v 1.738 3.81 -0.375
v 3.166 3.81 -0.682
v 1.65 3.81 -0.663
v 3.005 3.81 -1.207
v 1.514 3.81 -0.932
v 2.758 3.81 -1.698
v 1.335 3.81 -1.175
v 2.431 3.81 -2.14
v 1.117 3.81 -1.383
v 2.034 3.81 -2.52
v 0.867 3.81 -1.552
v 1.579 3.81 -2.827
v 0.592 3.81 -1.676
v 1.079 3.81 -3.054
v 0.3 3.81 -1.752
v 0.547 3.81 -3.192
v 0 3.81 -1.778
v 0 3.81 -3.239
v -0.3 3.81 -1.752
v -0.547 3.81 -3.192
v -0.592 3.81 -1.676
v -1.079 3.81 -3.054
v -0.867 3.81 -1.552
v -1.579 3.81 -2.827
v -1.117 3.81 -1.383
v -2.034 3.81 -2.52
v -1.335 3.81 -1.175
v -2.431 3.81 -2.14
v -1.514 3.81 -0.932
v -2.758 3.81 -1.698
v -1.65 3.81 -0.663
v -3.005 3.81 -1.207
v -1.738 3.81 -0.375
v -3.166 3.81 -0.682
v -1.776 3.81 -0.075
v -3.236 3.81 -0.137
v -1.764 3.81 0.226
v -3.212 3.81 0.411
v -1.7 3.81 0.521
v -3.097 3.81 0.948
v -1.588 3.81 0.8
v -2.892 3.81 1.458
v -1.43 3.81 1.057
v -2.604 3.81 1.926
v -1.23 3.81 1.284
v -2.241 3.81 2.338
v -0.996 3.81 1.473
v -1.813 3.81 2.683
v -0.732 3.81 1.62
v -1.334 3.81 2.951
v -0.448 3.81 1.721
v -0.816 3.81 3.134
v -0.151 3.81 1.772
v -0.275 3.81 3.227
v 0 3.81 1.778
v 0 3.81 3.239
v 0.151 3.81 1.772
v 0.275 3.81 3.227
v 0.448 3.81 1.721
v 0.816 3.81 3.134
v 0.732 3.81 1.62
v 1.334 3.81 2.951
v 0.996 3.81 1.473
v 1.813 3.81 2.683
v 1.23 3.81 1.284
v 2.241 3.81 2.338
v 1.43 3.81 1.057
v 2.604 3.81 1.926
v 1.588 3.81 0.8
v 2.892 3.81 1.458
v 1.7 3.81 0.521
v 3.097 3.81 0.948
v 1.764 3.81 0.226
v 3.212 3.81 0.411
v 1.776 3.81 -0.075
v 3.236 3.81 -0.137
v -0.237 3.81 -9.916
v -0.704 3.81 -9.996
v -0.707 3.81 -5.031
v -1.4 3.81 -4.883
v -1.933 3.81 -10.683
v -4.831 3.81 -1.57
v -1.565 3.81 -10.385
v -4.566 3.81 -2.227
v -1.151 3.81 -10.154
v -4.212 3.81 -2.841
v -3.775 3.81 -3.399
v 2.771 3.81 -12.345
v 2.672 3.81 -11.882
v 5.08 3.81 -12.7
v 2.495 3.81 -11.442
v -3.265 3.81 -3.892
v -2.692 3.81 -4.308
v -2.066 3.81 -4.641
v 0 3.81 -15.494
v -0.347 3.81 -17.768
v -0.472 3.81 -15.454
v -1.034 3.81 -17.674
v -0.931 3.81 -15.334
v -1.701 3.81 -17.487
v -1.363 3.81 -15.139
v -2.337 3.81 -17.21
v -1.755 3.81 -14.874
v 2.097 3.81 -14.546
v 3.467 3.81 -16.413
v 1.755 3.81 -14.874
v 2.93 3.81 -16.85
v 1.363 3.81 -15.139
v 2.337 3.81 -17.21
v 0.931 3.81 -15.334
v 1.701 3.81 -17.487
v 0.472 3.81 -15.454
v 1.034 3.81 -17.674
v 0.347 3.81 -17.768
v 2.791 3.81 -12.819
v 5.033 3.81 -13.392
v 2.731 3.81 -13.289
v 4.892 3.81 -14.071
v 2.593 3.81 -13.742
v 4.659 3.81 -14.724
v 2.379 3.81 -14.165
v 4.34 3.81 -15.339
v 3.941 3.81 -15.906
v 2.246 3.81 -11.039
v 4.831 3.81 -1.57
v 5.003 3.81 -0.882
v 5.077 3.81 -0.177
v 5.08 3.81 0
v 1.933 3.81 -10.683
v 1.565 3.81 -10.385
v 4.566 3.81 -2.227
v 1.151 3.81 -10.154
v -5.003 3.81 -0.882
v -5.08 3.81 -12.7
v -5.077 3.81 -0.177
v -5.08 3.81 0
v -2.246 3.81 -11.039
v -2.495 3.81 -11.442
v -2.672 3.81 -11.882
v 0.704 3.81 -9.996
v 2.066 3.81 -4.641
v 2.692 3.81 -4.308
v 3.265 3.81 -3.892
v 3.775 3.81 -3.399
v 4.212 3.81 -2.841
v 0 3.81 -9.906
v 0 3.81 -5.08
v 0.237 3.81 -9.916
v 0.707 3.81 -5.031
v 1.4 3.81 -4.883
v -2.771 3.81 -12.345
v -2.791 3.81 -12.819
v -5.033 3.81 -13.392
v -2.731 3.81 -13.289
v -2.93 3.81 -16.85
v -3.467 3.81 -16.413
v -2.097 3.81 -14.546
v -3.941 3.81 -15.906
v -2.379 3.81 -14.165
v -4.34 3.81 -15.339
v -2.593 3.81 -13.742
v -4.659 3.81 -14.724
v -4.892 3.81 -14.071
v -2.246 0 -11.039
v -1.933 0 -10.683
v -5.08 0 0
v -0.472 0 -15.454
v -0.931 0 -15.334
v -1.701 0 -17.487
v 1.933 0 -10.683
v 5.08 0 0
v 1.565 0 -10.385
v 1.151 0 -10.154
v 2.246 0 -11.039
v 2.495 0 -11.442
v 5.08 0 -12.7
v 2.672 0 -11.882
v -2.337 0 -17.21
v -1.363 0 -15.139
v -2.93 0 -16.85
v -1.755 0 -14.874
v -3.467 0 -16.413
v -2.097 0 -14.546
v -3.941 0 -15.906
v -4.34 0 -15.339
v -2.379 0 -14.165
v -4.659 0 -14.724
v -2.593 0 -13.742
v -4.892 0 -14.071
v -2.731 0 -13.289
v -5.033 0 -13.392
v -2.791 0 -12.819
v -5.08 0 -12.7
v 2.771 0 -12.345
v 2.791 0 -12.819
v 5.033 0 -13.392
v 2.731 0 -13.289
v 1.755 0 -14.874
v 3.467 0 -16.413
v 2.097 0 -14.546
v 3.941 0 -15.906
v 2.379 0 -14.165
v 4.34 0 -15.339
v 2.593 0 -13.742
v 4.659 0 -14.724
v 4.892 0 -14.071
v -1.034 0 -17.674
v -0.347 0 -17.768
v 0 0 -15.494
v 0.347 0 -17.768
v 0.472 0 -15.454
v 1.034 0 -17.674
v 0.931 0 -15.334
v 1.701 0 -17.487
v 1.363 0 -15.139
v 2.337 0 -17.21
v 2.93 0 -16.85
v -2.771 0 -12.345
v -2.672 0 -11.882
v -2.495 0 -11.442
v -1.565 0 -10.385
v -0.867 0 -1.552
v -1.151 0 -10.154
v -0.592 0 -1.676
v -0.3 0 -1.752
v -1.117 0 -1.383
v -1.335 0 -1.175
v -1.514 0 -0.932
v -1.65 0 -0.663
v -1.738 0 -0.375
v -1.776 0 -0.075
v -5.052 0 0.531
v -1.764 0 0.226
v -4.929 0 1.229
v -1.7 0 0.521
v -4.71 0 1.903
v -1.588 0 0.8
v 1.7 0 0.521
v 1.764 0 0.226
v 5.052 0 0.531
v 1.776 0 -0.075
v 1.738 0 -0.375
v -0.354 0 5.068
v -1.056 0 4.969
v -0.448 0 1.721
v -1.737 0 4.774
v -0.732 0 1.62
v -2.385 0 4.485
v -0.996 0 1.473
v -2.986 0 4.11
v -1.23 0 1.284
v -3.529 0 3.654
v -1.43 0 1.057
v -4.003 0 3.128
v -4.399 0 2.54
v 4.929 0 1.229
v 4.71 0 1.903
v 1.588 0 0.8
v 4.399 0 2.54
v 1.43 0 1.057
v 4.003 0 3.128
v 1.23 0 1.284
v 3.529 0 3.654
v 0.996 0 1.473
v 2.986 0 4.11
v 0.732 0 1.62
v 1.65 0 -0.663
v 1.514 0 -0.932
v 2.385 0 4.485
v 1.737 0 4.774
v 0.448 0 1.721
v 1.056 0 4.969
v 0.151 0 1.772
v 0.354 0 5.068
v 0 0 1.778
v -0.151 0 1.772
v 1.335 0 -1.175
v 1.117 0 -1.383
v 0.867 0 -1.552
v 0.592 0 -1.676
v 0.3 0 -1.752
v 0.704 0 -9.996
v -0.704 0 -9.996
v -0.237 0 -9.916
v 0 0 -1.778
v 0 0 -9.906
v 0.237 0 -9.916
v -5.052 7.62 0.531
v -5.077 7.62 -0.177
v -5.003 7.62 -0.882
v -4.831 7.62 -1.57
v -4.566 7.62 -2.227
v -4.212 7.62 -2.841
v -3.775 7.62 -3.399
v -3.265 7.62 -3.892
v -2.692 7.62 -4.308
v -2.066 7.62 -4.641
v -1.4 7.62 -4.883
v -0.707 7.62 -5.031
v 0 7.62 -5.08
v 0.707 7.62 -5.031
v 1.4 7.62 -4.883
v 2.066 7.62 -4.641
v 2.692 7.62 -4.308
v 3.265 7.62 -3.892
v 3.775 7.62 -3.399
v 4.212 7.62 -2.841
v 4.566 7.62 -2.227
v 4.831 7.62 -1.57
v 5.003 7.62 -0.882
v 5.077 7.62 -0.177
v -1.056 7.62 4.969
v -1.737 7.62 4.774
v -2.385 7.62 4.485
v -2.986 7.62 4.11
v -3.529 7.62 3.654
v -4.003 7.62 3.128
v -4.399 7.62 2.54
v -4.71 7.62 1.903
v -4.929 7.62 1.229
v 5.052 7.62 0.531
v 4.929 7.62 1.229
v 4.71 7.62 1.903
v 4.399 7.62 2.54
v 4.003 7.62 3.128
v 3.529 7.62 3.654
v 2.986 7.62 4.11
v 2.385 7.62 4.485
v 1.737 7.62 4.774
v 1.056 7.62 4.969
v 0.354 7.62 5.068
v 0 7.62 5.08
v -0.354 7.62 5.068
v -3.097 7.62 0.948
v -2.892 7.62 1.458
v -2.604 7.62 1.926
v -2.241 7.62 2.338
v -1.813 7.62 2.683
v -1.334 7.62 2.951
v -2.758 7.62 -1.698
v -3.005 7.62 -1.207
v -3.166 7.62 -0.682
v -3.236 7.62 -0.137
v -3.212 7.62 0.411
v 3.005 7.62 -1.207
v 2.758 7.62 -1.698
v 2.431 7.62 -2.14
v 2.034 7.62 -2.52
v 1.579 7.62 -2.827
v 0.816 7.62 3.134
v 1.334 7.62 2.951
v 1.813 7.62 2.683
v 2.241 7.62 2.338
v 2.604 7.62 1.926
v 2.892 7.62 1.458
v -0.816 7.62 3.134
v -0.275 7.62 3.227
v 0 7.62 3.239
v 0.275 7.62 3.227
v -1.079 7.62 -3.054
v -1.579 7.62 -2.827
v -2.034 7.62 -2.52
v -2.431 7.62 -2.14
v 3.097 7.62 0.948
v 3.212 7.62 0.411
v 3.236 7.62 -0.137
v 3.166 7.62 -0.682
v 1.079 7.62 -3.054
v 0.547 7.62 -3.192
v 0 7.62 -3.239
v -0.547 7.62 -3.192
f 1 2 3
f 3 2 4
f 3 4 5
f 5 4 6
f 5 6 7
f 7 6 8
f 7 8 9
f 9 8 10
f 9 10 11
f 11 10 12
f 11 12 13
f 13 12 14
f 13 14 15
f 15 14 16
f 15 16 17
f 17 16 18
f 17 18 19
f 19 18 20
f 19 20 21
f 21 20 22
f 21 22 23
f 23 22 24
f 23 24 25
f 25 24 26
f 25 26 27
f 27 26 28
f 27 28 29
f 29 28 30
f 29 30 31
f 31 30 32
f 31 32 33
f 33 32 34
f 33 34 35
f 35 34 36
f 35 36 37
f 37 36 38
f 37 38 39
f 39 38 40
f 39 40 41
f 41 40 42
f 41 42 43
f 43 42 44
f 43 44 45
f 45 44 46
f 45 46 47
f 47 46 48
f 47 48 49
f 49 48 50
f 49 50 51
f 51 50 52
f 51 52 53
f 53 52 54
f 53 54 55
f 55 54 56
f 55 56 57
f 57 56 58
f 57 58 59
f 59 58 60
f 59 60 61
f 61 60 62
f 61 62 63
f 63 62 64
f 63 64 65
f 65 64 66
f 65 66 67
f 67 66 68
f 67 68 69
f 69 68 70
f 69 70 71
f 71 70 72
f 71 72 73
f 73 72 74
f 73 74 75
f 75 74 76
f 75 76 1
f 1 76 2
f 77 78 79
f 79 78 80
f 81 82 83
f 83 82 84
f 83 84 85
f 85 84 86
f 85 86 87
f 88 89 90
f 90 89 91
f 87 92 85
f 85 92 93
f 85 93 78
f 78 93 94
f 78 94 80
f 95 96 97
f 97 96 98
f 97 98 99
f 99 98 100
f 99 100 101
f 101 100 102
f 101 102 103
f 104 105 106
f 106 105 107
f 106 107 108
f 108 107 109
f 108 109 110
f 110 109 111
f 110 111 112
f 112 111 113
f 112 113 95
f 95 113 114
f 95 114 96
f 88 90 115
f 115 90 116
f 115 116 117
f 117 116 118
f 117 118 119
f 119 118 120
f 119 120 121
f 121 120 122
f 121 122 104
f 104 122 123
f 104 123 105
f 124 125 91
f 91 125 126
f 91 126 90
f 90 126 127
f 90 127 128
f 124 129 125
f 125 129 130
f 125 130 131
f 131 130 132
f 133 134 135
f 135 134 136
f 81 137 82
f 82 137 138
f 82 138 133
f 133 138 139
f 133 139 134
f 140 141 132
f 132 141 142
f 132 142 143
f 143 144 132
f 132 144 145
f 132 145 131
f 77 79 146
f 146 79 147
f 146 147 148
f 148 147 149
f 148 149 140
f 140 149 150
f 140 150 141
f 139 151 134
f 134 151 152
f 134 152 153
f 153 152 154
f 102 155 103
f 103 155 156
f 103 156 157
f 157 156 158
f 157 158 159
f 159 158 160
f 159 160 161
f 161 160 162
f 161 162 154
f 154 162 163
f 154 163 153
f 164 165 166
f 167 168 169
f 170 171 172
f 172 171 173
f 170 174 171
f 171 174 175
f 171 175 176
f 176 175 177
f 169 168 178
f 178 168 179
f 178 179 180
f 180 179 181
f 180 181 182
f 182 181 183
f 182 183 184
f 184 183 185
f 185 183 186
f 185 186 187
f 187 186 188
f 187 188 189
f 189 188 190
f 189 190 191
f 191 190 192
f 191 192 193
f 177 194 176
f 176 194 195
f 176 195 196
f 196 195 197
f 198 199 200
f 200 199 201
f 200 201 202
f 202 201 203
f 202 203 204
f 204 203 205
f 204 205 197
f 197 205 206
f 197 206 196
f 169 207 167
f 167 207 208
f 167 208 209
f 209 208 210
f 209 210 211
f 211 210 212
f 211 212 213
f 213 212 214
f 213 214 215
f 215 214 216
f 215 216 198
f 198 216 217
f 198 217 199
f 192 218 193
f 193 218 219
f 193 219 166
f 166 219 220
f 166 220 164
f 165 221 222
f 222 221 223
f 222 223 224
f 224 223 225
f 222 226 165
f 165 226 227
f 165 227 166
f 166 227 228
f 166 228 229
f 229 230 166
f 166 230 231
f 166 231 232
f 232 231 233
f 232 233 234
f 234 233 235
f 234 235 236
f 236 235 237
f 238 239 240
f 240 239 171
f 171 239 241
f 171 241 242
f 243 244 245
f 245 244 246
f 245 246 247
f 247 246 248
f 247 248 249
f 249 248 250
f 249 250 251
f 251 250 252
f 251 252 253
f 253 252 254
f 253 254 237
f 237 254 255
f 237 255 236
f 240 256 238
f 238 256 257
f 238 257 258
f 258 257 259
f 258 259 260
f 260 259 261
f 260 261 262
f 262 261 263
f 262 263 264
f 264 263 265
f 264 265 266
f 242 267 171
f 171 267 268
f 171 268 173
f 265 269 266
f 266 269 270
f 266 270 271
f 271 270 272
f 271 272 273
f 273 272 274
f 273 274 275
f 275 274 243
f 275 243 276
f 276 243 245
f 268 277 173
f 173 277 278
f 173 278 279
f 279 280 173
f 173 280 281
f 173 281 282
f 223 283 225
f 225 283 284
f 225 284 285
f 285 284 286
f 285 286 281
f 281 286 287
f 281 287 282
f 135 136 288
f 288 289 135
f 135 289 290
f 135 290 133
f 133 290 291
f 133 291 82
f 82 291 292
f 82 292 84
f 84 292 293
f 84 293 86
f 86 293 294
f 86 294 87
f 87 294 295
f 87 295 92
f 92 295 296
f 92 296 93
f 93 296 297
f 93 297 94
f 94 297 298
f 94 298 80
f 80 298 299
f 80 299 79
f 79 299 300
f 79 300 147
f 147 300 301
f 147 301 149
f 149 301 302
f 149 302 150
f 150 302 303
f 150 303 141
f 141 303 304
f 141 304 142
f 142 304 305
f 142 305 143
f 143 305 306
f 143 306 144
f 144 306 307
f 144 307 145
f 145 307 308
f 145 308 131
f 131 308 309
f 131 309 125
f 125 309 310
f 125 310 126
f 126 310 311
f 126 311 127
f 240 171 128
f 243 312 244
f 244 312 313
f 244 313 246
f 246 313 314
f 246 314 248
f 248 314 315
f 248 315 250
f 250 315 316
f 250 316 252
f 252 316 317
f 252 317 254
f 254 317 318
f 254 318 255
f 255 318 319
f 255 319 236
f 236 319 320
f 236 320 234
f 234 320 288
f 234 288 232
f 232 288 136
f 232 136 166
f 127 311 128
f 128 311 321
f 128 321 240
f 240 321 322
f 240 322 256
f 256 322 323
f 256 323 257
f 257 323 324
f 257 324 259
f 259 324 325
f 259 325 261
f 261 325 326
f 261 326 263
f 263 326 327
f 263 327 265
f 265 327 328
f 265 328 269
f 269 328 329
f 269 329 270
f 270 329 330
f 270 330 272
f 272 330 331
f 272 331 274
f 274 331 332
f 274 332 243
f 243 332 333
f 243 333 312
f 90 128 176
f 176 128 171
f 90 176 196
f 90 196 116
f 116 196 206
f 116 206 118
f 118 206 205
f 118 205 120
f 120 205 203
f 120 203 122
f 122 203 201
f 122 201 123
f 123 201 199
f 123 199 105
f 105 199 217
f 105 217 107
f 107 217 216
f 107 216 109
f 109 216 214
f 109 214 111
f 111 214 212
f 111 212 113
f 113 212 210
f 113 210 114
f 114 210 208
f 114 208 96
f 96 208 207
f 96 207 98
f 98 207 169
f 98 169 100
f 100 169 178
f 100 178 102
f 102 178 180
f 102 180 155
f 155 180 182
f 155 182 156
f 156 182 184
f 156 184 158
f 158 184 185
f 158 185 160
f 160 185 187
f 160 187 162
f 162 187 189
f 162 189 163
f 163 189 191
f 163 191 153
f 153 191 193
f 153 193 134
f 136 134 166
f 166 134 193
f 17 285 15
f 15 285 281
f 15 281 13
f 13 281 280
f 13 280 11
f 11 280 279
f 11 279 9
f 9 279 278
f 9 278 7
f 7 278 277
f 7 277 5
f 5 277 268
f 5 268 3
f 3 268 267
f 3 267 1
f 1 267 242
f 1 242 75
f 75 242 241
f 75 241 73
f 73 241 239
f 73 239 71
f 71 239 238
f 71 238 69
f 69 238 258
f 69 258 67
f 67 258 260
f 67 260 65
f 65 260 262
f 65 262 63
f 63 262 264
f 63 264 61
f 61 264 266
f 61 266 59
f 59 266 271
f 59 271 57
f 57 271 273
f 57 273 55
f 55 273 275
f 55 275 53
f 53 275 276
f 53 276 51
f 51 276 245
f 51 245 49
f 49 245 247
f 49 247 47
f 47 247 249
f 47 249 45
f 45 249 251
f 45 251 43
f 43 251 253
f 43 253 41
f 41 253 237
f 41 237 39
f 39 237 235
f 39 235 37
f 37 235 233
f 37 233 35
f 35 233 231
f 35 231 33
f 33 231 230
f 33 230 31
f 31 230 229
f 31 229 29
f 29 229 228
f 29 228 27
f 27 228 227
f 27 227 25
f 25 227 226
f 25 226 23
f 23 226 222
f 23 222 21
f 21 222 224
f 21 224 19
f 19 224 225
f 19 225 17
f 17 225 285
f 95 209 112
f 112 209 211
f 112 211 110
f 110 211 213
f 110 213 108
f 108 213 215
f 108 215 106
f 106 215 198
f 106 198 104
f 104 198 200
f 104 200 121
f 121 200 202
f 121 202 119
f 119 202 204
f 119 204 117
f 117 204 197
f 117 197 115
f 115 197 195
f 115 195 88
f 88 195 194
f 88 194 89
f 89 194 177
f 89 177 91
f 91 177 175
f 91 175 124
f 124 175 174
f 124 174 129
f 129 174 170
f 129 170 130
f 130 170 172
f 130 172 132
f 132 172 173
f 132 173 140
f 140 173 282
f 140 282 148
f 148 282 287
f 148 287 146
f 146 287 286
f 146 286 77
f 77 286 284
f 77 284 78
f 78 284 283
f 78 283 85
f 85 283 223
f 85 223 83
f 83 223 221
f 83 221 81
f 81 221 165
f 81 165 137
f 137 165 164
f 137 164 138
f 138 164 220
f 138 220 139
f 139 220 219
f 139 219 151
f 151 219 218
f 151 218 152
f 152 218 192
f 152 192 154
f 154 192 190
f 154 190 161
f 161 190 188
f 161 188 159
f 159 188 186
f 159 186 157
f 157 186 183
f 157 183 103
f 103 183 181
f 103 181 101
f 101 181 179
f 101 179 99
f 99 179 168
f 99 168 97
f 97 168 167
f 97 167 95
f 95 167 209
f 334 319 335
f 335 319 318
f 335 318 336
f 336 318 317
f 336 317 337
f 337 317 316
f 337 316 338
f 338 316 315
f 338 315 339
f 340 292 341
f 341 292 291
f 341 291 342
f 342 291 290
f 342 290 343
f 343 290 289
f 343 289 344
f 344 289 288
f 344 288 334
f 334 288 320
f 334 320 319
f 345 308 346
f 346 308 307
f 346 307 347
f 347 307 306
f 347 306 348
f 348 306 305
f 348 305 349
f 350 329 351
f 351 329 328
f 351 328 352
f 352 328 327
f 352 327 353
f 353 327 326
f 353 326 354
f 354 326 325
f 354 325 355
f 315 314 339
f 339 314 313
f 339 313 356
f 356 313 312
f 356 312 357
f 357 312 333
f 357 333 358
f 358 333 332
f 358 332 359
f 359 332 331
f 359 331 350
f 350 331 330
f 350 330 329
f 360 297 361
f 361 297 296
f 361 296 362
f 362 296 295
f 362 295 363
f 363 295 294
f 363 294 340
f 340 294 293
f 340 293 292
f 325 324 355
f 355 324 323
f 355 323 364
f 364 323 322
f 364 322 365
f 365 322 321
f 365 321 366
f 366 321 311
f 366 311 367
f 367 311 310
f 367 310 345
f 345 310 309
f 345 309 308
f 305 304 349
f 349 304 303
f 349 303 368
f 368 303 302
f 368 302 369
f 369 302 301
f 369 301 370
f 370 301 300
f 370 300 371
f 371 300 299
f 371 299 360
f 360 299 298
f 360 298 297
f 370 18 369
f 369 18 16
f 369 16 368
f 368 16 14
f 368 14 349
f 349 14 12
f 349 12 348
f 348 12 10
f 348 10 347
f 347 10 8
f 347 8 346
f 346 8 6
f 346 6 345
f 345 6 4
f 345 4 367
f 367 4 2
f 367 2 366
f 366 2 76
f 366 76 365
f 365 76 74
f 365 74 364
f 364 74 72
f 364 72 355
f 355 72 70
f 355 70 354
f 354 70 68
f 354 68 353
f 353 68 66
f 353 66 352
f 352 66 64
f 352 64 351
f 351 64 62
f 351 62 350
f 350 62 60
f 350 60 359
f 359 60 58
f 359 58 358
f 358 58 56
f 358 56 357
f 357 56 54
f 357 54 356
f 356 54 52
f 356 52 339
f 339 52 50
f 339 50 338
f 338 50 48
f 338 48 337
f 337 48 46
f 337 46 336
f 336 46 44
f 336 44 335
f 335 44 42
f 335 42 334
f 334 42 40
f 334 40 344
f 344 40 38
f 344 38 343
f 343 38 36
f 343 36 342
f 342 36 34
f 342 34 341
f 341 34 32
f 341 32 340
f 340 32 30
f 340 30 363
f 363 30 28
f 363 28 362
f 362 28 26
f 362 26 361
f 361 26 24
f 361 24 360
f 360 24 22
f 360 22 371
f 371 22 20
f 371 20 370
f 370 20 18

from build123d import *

# Parameters (mm, degrees)
SKETCH1_R           = 1.778
SKETCH1_R_2         = 2.794
BASE_DEPTH          = 3.81
SKETCH2_R           = 5.08
SKETCH2_R_2         = 3.2385
BOSS_EXTRUDE2_DEPTH = 3.81


with BuildPart() as part:
    # Sketch1 → base (new body)
    with BuildSketch(Plane(origin=(0, 0, 0), x_dir=(1, 0, 0), z_dir=(0, 1, 0))):
        with BuildLine():
            Line((-5.08, 0), (-5.08, 12.7))
            ThreePointArc((-5.08, 12.7), (0, 17.78), (5.08, 12.7))
            Line((5.08, 12.7), (5.08, 0))
            ThreePointArc((5.08, 0), (0, -5.08), (-5.08, 0))
        make_face()
        with Locations(Location((0, 0, 0), (0, 0, 90))):
            Circle(SKETCH1_R, mode=Mode.SUBTRACT)
        with Locations(Location((0, 12.7, 0), (0, 0, 90))):
            Circle(SKETCH1_R_2, mode=Mode.SUBTRACT)
    extrude(amount=BASE_DEPTH)

    # Sketch2 → Boss-Extrude2 (add)
    with BuildSketch(Plane(origin=(0, 3.81, 0), x_dir=(1, 0, 0), z_dir=(0, 1, 0))):
        Circle(SKETCH2_R)
        with Locations(Location((0, 0, 0), (0, 0, 90))):
            Circle(SKETCH2_R_2, mode=Mode.SUBTRACT)
    extrude(amount=BOSS_EXTRUDE2_DEPTH)


solid = part.part
